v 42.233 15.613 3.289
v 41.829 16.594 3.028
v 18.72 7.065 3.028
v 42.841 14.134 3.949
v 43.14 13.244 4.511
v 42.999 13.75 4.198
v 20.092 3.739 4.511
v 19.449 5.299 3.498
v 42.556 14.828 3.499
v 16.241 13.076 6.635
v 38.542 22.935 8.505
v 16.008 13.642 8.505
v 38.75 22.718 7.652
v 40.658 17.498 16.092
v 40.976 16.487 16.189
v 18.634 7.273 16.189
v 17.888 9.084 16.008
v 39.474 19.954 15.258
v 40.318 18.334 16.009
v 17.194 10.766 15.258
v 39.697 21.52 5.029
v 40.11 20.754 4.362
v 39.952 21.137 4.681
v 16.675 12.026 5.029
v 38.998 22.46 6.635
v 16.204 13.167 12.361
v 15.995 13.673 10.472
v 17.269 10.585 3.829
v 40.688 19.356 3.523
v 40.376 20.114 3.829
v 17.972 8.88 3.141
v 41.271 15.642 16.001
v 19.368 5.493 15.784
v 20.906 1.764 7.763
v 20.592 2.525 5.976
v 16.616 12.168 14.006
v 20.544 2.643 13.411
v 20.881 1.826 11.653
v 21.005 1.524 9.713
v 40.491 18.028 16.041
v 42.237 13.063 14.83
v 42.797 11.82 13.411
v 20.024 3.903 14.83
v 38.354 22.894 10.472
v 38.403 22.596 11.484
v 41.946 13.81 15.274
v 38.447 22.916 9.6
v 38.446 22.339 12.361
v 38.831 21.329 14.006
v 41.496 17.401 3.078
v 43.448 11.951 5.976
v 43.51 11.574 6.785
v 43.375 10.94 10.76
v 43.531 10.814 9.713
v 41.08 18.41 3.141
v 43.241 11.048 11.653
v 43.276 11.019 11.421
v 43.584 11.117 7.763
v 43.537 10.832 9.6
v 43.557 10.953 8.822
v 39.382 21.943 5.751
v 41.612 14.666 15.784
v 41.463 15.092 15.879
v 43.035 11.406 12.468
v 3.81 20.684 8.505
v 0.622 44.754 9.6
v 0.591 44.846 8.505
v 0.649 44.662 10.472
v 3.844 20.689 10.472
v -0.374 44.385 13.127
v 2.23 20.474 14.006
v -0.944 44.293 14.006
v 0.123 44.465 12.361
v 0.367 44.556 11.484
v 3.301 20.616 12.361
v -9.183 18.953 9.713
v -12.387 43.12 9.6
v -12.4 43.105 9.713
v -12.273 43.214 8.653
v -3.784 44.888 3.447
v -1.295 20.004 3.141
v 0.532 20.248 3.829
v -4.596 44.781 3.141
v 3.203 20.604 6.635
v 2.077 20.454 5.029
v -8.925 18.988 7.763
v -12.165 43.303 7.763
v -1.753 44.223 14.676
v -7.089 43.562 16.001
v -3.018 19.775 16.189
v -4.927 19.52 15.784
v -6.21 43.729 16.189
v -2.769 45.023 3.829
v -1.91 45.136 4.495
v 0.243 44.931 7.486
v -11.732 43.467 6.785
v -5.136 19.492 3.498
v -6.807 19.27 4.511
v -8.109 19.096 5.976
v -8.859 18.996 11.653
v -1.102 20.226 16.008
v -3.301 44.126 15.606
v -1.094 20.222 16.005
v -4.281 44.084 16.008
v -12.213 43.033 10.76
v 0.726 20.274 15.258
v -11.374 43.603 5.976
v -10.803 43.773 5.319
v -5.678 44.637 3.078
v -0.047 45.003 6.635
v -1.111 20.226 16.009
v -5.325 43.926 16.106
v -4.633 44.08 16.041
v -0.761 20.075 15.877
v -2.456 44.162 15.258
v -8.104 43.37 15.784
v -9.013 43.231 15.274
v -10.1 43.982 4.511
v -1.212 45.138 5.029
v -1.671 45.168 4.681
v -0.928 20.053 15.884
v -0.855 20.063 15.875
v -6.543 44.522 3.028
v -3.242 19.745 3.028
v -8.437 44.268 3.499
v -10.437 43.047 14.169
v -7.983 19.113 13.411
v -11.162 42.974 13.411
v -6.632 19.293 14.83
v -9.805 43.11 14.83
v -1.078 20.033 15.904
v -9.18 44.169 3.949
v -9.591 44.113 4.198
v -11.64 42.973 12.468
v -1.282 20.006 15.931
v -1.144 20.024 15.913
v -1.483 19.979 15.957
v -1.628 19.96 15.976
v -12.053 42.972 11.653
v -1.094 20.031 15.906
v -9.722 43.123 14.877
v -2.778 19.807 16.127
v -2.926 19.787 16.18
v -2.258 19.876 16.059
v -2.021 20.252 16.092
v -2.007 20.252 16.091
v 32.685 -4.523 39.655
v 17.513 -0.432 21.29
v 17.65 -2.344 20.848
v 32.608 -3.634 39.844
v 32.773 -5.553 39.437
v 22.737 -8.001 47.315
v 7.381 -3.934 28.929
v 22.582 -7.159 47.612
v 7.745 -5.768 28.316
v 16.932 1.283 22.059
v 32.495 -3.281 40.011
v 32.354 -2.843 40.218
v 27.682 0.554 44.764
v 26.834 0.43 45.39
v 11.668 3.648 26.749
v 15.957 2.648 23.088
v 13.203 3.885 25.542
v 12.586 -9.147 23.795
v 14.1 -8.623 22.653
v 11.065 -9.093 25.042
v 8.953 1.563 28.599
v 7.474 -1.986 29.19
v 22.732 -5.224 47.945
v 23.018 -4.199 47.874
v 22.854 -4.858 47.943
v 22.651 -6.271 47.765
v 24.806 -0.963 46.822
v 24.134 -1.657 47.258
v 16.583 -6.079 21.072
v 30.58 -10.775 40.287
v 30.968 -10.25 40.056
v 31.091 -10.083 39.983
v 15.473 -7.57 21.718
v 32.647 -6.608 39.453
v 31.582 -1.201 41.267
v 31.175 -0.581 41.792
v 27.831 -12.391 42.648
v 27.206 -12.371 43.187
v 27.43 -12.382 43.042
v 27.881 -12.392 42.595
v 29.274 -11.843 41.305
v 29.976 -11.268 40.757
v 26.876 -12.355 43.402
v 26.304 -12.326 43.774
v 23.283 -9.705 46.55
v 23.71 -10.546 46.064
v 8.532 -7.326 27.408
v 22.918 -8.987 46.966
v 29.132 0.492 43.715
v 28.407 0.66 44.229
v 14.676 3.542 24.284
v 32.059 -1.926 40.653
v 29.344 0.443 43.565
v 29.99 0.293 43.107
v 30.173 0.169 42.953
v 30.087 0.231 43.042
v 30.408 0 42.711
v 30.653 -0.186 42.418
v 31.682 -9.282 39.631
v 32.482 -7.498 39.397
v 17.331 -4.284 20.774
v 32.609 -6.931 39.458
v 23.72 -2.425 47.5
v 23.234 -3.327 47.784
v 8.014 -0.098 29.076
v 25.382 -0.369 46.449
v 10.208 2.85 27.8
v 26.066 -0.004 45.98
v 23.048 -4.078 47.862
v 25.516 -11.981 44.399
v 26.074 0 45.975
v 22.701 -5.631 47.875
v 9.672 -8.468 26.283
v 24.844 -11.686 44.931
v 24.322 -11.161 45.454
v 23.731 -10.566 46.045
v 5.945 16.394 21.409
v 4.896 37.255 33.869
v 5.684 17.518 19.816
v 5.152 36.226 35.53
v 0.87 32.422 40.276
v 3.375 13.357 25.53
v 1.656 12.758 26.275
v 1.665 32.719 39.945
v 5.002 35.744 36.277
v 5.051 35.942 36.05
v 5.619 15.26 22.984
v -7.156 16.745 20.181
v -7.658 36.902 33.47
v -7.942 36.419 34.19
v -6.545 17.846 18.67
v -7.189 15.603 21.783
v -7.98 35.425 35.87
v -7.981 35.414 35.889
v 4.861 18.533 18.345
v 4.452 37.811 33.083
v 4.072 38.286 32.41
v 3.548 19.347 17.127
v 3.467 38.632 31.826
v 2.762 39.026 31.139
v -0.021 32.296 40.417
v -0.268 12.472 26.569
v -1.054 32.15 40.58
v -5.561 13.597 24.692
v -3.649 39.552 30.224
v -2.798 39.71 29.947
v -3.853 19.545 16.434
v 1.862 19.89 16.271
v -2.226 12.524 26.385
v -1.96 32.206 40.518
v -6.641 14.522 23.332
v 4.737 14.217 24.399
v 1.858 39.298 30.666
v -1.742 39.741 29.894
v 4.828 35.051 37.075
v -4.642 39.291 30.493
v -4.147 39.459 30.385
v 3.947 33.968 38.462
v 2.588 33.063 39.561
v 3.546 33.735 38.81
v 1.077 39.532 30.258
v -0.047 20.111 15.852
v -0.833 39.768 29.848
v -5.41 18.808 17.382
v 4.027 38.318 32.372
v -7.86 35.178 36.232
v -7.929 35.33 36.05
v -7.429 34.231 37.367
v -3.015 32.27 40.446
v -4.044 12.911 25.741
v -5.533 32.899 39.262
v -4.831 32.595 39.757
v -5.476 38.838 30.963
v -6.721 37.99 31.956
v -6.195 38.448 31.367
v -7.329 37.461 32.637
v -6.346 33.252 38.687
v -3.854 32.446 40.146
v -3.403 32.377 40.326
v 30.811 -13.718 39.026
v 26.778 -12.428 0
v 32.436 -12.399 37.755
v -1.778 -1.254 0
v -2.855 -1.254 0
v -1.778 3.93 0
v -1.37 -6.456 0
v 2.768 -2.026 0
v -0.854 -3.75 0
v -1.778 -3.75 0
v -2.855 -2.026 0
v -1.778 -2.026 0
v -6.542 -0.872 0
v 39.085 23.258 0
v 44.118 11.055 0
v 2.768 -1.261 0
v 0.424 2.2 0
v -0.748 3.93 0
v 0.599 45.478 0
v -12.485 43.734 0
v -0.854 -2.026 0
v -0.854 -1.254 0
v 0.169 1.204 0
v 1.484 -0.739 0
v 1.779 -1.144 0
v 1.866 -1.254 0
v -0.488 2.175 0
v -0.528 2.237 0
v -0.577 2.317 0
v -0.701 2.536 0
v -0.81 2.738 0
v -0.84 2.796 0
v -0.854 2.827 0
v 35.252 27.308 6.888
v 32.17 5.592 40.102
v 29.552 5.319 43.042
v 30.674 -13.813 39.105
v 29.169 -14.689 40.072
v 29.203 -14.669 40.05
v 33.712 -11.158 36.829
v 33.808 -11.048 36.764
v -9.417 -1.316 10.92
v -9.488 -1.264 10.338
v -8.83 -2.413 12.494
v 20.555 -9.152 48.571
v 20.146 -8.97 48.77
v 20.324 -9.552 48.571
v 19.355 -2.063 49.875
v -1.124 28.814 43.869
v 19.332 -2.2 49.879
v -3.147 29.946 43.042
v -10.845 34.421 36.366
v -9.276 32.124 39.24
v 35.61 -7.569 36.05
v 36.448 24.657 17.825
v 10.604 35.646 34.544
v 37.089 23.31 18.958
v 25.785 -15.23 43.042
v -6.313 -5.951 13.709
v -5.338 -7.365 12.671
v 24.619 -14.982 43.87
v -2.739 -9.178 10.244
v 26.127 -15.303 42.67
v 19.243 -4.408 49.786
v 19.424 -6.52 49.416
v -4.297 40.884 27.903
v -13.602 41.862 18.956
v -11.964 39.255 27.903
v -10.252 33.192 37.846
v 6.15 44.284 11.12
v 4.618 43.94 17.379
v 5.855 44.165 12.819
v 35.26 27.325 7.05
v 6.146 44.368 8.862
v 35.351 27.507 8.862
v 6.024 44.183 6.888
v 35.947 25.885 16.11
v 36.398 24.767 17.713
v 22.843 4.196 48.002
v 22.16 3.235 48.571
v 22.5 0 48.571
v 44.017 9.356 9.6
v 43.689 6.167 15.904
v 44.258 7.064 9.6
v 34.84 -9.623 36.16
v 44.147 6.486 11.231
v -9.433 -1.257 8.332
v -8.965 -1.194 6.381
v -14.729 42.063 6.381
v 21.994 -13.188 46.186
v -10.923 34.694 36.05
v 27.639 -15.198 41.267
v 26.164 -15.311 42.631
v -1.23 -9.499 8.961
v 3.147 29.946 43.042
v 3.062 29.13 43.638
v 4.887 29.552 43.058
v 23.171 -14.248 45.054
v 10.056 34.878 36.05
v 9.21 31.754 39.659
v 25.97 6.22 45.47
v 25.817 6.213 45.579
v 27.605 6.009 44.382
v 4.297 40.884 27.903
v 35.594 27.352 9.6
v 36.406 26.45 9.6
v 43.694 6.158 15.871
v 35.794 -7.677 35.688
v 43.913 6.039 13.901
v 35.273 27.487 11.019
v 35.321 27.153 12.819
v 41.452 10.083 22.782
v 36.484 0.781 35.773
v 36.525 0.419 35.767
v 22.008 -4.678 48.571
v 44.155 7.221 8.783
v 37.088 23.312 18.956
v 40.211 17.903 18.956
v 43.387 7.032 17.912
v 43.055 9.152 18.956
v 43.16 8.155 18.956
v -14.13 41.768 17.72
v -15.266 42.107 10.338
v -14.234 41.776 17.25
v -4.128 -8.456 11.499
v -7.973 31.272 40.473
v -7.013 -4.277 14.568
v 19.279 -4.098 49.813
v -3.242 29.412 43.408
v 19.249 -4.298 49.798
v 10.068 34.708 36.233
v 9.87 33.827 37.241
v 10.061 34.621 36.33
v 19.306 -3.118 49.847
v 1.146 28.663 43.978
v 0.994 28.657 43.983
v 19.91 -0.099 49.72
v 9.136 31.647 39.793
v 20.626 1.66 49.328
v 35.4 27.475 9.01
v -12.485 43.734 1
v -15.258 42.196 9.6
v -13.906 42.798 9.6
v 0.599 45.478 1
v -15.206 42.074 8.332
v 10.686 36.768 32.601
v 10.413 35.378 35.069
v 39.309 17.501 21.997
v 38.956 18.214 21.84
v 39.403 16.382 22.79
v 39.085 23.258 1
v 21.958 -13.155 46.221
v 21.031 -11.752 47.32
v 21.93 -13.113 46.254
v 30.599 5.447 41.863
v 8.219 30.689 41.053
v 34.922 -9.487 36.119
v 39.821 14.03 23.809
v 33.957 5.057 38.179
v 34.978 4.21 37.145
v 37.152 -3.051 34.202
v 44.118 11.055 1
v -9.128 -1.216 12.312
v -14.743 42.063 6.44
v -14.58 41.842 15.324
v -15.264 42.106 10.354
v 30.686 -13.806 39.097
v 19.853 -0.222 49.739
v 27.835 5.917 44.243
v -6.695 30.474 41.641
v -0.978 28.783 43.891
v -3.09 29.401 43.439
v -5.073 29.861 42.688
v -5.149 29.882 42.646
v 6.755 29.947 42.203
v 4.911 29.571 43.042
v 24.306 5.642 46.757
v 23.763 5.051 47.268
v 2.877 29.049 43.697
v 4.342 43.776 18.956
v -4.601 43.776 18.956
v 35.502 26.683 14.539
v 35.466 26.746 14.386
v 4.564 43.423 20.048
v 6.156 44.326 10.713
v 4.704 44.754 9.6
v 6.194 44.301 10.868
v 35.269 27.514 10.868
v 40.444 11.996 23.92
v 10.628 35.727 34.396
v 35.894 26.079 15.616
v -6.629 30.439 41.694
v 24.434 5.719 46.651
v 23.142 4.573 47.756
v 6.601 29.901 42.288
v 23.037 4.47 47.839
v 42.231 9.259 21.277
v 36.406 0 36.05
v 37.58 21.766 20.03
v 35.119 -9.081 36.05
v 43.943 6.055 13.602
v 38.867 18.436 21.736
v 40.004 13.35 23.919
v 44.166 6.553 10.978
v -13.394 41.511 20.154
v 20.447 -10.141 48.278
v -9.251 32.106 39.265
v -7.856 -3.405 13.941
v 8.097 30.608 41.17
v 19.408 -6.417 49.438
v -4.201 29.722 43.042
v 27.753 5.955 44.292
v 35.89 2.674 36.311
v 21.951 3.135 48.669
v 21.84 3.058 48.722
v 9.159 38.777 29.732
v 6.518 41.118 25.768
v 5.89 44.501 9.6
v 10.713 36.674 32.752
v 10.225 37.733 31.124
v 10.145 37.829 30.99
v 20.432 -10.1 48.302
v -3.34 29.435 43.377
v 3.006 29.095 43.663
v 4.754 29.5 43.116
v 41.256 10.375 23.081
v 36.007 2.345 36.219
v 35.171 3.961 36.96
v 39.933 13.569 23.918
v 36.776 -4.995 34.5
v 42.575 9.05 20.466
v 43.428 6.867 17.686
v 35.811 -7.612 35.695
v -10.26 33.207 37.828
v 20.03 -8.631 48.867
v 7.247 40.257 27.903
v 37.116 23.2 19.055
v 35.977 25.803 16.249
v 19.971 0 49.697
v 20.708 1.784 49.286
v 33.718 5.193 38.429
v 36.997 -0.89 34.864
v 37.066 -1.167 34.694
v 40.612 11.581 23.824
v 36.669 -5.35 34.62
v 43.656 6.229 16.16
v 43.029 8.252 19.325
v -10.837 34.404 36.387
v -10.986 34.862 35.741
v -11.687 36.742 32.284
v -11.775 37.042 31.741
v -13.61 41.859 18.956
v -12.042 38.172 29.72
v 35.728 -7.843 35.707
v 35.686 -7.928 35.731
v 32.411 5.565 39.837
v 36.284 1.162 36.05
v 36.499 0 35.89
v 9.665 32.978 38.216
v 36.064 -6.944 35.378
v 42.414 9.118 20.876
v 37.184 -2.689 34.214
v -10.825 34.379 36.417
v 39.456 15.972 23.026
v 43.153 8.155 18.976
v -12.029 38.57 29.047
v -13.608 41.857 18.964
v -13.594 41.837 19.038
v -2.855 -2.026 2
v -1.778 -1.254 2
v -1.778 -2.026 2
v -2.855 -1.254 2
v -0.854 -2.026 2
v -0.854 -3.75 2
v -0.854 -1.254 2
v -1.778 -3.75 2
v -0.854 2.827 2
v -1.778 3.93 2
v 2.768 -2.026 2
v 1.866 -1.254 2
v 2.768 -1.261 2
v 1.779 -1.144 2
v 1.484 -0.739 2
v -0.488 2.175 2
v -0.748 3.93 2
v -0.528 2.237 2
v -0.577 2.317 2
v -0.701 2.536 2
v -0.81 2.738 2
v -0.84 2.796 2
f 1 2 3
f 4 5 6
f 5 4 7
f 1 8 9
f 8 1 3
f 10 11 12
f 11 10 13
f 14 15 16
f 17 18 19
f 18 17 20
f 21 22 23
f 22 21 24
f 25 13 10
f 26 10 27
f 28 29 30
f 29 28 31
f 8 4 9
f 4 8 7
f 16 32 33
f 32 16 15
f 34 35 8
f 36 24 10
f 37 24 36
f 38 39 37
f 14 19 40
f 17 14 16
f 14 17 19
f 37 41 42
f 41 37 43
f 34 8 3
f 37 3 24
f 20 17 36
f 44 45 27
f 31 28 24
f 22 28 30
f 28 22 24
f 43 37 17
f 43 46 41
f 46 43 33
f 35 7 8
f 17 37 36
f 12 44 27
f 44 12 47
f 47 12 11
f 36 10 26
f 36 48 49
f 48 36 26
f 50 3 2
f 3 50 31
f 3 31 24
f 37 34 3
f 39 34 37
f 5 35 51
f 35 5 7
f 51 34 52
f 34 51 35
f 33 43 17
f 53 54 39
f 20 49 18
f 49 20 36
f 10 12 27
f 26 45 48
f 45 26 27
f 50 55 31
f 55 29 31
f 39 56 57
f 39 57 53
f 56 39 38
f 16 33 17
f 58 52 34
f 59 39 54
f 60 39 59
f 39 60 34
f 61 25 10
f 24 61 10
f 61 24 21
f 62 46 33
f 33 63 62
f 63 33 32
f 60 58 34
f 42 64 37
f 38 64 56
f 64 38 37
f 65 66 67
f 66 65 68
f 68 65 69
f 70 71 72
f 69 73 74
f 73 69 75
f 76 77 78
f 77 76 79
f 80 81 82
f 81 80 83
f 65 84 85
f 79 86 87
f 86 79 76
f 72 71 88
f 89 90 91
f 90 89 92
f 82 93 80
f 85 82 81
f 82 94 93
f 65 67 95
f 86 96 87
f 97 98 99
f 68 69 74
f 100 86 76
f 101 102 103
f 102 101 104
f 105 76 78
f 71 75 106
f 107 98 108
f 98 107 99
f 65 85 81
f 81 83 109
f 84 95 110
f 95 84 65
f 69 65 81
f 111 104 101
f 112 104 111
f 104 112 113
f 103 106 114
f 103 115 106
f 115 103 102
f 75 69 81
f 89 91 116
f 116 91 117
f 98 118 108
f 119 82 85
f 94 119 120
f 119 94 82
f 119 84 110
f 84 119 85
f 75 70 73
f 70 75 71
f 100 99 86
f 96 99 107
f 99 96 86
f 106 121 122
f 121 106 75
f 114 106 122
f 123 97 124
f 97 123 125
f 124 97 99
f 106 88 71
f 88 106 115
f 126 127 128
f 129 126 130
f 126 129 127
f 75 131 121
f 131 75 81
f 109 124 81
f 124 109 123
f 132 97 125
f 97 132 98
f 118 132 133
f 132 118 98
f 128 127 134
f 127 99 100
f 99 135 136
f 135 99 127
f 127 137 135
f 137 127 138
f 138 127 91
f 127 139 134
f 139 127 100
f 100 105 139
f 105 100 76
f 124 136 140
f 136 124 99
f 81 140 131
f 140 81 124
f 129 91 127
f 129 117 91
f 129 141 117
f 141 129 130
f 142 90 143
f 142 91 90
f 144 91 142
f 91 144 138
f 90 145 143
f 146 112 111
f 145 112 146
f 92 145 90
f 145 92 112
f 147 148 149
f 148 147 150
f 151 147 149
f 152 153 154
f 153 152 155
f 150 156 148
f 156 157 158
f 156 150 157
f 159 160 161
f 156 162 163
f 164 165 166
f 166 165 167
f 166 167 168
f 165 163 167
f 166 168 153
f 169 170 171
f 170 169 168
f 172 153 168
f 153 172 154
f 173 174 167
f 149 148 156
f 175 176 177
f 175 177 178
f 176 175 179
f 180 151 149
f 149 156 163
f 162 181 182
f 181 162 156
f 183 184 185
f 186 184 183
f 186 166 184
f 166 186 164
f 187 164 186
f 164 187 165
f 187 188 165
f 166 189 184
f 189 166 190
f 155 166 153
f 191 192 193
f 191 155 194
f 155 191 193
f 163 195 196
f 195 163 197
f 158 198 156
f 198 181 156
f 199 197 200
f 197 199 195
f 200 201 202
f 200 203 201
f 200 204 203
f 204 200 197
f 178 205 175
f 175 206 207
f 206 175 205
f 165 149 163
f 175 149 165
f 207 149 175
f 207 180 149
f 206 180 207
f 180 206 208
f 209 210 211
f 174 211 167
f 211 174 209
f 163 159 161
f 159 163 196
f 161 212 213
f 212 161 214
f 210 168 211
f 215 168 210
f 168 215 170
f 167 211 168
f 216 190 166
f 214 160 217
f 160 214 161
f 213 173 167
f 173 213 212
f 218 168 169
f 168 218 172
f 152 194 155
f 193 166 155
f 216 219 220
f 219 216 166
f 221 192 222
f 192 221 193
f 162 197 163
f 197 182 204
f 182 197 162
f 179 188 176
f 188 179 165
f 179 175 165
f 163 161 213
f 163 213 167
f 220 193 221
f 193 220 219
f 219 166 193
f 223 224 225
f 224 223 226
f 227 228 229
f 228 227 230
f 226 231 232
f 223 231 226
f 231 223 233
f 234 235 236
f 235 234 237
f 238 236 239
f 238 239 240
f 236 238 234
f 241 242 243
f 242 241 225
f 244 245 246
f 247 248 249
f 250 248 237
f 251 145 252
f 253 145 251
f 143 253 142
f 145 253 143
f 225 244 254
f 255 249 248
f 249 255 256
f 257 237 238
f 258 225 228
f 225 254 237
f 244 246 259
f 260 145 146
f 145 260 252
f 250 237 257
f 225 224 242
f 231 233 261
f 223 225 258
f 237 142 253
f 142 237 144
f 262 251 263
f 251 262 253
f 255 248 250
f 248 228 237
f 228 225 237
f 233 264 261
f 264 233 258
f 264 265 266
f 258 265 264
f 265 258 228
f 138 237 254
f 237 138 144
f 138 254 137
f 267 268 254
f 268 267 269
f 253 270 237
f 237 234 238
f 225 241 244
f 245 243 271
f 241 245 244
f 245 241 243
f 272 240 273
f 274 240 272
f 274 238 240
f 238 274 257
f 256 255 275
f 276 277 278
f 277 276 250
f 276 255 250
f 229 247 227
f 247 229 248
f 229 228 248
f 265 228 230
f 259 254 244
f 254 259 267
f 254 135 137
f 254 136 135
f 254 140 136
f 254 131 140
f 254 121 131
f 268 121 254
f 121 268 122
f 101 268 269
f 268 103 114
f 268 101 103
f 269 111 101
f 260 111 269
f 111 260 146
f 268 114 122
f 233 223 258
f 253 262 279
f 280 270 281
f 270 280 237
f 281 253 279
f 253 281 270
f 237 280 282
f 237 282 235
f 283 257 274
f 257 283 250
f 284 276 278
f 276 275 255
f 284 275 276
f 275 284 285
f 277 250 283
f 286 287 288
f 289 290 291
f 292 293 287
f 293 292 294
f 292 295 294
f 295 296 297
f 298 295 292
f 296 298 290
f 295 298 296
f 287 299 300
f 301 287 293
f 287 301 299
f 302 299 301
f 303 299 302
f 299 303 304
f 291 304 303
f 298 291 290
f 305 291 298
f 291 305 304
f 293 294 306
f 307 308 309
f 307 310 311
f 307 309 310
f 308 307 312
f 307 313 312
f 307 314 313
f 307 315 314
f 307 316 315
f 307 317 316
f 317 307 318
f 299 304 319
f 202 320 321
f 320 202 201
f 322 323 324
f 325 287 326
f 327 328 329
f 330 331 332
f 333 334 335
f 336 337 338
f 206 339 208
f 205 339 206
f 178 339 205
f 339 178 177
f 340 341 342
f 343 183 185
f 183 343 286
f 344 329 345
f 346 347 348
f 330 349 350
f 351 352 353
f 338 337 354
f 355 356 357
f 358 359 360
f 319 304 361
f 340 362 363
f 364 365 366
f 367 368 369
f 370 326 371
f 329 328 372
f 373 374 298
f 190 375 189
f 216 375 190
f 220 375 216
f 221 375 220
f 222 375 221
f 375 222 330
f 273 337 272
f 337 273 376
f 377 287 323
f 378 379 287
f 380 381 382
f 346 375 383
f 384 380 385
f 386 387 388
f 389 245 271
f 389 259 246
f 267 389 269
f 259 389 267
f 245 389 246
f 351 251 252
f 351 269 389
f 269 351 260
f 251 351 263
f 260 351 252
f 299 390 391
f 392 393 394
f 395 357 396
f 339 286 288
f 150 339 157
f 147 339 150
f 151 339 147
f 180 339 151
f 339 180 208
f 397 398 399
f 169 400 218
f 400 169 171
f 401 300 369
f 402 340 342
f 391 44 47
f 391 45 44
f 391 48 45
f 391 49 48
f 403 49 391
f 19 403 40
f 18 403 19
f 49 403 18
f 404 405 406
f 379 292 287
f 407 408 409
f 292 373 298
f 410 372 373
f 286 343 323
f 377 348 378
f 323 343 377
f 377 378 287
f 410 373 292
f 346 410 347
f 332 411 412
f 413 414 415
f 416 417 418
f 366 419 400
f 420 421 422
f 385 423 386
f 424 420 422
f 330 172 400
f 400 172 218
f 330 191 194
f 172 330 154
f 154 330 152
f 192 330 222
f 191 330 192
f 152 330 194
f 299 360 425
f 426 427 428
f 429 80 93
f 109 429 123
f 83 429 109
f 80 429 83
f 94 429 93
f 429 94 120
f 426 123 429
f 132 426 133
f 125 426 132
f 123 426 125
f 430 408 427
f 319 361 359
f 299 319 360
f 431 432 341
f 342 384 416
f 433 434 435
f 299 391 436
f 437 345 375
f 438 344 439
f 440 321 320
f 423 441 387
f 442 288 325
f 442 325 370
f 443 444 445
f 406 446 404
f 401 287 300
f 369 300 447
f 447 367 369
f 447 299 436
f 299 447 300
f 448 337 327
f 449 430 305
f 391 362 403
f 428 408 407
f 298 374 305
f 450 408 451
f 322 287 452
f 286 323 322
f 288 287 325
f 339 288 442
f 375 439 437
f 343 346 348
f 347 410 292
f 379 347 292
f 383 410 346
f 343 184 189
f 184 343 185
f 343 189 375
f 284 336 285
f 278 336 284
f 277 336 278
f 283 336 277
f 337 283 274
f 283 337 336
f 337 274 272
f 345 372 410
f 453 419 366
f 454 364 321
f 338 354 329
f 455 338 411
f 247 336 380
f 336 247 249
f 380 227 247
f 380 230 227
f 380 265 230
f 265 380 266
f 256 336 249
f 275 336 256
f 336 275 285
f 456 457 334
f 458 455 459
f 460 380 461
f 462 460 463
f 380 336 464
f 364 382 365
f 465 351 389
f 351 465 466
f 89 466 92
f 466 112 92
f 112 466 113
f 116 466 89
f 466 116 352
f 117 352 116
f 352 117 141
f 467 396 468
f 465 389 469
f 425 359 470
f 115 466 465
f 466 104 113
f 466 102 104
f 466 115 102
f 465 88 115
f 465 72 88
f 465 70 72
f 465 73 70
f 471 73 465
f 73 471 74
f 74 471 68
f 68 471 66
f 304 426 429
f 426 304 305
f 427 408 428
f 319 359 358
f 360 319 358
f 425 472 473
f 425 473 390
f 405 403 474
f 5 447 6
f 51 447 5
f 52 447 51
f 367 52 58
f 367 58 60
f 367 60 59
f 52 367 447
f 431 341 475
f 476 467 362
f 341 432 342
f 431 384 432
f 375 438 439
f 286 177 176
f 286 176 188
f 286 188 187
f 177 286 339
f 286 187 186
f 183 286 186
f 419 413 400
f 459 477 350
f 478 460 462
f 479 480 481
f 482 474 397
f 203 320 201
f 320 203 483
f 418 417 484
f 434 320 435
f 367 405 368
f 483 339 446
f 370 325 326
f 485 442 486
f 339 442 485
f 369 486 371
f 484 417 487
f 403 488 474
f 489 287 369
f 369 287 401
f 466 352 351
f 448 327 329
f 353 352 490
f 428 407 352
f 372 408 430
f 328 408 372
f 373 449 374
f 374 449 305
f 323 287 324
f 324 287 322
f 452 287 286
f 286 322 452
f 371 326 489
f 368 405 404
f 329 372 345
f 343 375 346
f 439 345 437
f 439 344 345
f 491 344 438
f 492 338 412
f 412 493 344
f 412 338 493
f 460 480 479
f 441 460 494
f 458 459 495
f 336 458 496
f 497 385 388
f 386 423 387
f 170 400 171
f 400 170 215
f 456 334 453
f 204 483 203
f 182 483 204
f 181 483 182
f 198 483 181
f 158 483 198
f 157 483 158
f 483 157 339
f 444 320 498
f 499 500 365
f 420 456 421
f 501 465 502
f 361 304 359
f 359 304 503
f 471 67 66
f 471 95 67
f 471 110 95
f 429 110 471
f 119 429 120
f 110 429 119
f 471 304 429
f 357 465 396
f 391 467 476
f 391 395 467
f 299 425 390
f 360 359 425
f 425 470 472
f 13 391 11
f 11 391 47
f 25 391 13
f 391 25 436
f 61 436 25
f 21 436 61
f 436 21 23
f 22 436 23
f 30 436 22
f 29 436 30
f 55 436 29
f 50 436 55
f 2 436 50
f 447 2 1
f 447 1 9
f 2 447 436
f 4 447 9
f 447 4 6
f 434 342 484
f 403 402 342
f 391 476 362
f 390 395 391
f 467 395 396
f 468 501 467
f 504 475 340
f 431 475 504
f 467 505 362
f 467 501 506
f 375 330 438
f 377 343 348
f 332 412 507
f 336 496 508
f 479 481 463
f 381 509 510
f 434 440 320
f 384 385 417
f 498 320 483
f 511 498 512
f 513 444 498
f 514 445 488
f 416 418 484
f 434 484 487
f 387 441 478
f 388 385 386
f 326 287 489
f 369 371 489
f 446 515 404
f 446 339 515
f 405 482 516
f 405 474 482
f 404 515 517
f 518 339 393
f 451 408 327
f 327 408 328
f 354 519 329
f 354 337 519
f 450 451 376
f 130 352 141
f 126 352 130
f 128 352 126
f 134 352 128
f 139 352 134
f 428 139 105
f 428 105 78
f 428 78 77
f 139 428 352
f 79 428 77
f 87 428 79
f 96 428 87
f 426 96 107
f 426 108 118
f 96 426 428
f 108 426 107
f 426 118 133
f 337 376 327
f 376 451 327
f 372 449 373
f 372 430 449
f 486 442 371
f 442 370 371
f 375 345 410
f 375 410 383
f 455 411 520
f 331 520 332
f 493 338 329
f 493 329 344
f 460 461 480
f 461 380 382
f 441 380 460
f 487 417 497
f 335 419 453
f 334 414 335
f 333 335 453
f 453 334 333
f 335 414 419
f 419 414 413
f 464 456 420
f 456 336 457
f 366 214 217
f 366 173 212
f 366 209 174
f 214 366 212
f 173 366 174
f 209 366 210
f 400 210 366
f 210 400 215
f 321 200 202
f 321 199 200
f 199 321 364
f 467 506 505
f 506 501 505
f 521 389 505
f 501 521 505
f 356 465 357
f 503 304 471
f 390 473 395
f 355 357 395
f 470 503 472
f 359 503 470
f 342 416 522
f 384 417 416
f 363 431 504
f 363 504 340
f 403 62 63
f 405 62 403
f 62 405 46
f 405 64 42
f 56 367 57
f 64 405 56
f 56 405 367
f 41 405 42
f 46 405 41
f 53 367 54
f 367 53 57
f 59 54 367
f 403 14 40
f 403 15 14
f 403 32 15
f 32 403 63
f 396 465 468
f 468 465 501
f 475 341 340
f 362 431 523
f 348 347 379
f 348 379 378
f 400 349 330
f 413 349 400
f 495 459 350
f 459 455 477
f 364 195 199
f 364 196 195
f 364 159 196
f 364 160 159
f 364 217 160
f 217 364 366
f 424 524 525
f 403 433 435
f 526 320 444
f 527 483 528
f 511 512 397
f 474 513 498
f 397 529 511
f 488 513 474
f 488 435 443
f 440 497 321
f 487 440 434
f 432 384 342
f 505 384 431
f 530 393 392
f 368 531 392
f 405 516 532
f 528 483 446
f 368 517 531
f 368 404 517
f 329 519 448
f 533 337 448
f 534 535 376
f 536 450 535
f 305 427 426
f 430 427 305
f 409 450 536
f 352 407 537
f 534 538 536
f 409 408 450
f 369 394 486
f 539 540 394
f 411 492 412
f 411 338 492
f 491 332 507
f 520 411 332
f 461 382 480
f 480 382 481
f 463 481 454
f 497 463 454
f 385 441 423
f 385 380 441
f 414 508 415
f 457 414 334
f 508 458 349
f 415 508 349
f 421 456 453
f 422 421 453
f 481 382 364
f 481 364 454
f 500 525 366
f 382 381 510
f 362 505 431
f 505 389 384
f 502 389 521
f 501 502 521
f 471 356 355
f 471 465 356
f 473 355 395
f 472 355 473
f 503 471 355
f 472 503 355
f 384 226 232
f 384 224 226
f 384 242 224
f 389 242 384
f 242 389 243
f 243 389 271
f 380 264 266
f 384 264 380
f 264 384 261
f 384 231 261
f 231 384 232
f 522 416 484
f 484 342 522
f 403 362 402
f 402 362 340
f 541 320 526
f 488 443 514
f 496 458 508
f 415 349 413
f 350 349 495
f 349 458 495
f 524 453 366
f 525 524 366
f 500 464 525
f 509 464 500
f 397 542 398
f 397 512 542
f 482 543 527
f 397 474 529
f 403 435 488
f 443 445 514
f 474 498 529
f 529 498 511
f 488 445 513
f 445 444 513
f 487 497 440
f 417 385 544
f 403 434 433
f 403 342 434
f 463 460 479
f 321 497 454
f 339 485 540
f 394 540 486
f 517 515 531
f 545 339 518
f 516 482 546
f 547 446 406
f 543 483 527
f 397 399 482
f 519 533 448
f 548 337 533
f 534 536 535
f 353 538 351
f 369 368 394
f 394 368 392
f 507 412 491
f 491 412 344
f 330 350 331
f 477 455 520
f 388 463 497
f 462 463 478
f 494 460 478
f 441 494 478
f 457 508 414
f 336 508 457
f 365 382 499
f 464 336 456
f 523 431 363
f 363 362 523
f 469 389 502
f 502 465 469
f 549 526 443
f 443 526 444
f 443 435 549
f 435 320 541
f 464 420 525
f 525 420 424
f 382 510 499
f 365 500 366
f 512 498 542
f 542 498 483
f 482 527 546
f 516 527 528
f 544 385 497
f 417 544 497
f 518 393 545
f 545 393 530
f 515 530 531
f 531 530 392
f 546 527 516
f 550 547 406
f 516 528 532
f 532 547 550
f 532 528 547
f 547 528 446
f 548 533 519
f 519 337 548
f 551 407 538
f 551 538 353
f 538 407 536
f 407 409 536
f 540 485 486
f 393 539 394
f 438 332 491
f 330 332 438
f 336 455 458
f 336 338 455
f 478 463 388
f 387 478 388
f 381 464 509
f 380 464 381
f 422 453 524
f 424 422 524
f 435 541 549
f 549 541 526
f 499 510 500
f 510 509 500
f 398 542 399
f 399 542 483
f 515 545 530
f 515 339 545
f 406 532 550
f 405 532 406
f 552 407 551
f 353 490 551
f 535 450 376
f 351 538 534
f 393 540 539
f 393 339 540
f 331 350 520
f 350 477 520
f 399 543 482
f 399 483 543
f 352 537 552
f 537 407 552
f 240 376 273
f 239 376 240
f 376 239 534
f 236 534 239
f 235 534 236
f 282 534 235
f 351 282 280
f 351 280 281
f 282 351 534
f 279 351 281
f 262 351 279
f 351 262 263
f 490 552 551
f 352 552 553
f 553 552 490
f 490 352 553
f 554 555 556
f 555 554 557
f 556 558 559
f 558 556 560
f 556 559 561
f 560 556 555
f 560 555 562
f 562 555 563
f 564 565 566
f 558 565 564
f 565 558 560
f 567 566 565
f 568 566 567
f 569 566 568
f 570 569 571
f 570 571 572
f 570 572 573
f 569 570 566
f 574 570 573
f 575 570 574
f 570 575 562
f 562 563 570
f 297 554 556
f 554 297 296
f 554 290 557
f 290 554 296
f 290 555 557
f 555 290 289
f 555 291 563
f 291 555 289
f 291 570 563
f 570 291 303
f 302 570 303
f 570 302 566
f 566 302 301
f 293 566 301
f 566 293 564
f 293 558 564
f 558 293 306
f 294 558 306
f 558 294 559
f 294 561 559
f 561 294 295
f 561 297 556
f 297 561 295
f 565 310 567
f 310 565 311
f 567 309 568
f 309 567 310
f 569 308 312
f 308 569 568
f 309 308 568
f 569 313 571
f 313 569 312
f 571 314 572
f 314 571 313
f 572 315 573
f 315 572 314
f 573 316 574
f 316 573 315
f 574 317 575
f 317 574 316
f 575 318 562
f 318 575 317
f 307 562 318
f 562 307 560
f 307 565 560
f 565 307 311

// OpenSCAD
difference() {
	difference() {
		difference() {
			hull() {
				union() {
					union() {
						rotate(a = 22.4109105310, v = [0, 0, 1]) {
							translate(v = [0, -6.6000000000, 0]) {
								cube(size = [45.0000000000, 13.2000000000, 1]);
							}
						}
						rotate(a = 97.5890894690, v = [0, 0, 1]) {
							translate(v = [0, -6.6000000000, 0]) {
								cube(size = [45.0000000000, 13.2000000000, 1]);
							}
						}
						rotate(a = -11.9775063242, v = [0, 0, 1]) {
							translate(v = [0, -6.6000000000, 0]) {
								cube(size = [28.7746391682, 13.2000000000, 1]);
							}
						}
						rotate(a = 92.2882357156, v = [0, 0, 1]) {
							translate(v = [0, -6.6000000000, 0]) {
								cube(size = [36.6667031495, 13.2000000000, 1]);
							}
						}
					}
					translate(v = [0, 0, 9.5999961353]) {
						intersection() {
							hull() {
								rotate(a = 89.9999177095, v = [-0.3812464258, 0.9244734516, -0.0000005432]) {
									cylinder(h = 45, r = 9.6000000000);
								}
								rotate(a = 89.9999458523, v = [-0.9912407072, -0.1320676359, 0.0000011233]) {
									cylinder(h = 45, r = 9.6000000000);
								}
								rotate(a = 39.7497638717, v = [0.1327015173, 0.6255145820, -0.0000007582]) {
									cylinder(h = 45, r = 9.6000000000);
								}
								rotate(a = 54.5690804774, v = [-0.8141653234, -0.0325334230, 0.0000008467]) {
									cylinder(h = 45, r = 9.6000000000);
								}
							}
							sphere(r = 45);
						}
					}
				}
			}
			translate(v = [0, 0, 9.5999961353]) {
				rotate(a = 89.9999177095, v = [-0.3812464258, 0.9244734516, -0.0000005432]) {
					translate(v = [0, 0, 20]) {
						cylinder(h = 45, r = 6.6000000000);
					}
				}
				rotate(a = 89.9999458523, v = [-0.9912407072, -0.1320676359, 0.0000011233]) {
					translate(v = [0, 0, 20]) {
						cylinder(h = 45, r = 6.6000000000);
					}
				}
				rotate(a = 39.7497638717, v = [0.1327015173, 0.6255145820, -0.0000007582]) {
					translate(v = [0, 0, 20]) {
						cylinder(h = 45, r = 6.6000000000);
					}
				}
				rotate(a = 54.5690804774, v = [-0.8141653234, -0.0325334230, 0.0000008467]) {
					translate(v = [0, 0, 20]) {
						cylinder(h = 45, r = 6.6000000000);
					}
				}
			}
		}
		translate(v = [-100, -100, -100]) {
			cube(size = [200, 200, 100]);
		}
	}
	translate(v = [0, 0, 2]) {
		rotate(a = 180, v = [0, 1, 0]) {
			linear_extrude(height = 3) {
				text(halign = "center", size = 8, text = "4", valign = "center");
			}
		}
	}
}
